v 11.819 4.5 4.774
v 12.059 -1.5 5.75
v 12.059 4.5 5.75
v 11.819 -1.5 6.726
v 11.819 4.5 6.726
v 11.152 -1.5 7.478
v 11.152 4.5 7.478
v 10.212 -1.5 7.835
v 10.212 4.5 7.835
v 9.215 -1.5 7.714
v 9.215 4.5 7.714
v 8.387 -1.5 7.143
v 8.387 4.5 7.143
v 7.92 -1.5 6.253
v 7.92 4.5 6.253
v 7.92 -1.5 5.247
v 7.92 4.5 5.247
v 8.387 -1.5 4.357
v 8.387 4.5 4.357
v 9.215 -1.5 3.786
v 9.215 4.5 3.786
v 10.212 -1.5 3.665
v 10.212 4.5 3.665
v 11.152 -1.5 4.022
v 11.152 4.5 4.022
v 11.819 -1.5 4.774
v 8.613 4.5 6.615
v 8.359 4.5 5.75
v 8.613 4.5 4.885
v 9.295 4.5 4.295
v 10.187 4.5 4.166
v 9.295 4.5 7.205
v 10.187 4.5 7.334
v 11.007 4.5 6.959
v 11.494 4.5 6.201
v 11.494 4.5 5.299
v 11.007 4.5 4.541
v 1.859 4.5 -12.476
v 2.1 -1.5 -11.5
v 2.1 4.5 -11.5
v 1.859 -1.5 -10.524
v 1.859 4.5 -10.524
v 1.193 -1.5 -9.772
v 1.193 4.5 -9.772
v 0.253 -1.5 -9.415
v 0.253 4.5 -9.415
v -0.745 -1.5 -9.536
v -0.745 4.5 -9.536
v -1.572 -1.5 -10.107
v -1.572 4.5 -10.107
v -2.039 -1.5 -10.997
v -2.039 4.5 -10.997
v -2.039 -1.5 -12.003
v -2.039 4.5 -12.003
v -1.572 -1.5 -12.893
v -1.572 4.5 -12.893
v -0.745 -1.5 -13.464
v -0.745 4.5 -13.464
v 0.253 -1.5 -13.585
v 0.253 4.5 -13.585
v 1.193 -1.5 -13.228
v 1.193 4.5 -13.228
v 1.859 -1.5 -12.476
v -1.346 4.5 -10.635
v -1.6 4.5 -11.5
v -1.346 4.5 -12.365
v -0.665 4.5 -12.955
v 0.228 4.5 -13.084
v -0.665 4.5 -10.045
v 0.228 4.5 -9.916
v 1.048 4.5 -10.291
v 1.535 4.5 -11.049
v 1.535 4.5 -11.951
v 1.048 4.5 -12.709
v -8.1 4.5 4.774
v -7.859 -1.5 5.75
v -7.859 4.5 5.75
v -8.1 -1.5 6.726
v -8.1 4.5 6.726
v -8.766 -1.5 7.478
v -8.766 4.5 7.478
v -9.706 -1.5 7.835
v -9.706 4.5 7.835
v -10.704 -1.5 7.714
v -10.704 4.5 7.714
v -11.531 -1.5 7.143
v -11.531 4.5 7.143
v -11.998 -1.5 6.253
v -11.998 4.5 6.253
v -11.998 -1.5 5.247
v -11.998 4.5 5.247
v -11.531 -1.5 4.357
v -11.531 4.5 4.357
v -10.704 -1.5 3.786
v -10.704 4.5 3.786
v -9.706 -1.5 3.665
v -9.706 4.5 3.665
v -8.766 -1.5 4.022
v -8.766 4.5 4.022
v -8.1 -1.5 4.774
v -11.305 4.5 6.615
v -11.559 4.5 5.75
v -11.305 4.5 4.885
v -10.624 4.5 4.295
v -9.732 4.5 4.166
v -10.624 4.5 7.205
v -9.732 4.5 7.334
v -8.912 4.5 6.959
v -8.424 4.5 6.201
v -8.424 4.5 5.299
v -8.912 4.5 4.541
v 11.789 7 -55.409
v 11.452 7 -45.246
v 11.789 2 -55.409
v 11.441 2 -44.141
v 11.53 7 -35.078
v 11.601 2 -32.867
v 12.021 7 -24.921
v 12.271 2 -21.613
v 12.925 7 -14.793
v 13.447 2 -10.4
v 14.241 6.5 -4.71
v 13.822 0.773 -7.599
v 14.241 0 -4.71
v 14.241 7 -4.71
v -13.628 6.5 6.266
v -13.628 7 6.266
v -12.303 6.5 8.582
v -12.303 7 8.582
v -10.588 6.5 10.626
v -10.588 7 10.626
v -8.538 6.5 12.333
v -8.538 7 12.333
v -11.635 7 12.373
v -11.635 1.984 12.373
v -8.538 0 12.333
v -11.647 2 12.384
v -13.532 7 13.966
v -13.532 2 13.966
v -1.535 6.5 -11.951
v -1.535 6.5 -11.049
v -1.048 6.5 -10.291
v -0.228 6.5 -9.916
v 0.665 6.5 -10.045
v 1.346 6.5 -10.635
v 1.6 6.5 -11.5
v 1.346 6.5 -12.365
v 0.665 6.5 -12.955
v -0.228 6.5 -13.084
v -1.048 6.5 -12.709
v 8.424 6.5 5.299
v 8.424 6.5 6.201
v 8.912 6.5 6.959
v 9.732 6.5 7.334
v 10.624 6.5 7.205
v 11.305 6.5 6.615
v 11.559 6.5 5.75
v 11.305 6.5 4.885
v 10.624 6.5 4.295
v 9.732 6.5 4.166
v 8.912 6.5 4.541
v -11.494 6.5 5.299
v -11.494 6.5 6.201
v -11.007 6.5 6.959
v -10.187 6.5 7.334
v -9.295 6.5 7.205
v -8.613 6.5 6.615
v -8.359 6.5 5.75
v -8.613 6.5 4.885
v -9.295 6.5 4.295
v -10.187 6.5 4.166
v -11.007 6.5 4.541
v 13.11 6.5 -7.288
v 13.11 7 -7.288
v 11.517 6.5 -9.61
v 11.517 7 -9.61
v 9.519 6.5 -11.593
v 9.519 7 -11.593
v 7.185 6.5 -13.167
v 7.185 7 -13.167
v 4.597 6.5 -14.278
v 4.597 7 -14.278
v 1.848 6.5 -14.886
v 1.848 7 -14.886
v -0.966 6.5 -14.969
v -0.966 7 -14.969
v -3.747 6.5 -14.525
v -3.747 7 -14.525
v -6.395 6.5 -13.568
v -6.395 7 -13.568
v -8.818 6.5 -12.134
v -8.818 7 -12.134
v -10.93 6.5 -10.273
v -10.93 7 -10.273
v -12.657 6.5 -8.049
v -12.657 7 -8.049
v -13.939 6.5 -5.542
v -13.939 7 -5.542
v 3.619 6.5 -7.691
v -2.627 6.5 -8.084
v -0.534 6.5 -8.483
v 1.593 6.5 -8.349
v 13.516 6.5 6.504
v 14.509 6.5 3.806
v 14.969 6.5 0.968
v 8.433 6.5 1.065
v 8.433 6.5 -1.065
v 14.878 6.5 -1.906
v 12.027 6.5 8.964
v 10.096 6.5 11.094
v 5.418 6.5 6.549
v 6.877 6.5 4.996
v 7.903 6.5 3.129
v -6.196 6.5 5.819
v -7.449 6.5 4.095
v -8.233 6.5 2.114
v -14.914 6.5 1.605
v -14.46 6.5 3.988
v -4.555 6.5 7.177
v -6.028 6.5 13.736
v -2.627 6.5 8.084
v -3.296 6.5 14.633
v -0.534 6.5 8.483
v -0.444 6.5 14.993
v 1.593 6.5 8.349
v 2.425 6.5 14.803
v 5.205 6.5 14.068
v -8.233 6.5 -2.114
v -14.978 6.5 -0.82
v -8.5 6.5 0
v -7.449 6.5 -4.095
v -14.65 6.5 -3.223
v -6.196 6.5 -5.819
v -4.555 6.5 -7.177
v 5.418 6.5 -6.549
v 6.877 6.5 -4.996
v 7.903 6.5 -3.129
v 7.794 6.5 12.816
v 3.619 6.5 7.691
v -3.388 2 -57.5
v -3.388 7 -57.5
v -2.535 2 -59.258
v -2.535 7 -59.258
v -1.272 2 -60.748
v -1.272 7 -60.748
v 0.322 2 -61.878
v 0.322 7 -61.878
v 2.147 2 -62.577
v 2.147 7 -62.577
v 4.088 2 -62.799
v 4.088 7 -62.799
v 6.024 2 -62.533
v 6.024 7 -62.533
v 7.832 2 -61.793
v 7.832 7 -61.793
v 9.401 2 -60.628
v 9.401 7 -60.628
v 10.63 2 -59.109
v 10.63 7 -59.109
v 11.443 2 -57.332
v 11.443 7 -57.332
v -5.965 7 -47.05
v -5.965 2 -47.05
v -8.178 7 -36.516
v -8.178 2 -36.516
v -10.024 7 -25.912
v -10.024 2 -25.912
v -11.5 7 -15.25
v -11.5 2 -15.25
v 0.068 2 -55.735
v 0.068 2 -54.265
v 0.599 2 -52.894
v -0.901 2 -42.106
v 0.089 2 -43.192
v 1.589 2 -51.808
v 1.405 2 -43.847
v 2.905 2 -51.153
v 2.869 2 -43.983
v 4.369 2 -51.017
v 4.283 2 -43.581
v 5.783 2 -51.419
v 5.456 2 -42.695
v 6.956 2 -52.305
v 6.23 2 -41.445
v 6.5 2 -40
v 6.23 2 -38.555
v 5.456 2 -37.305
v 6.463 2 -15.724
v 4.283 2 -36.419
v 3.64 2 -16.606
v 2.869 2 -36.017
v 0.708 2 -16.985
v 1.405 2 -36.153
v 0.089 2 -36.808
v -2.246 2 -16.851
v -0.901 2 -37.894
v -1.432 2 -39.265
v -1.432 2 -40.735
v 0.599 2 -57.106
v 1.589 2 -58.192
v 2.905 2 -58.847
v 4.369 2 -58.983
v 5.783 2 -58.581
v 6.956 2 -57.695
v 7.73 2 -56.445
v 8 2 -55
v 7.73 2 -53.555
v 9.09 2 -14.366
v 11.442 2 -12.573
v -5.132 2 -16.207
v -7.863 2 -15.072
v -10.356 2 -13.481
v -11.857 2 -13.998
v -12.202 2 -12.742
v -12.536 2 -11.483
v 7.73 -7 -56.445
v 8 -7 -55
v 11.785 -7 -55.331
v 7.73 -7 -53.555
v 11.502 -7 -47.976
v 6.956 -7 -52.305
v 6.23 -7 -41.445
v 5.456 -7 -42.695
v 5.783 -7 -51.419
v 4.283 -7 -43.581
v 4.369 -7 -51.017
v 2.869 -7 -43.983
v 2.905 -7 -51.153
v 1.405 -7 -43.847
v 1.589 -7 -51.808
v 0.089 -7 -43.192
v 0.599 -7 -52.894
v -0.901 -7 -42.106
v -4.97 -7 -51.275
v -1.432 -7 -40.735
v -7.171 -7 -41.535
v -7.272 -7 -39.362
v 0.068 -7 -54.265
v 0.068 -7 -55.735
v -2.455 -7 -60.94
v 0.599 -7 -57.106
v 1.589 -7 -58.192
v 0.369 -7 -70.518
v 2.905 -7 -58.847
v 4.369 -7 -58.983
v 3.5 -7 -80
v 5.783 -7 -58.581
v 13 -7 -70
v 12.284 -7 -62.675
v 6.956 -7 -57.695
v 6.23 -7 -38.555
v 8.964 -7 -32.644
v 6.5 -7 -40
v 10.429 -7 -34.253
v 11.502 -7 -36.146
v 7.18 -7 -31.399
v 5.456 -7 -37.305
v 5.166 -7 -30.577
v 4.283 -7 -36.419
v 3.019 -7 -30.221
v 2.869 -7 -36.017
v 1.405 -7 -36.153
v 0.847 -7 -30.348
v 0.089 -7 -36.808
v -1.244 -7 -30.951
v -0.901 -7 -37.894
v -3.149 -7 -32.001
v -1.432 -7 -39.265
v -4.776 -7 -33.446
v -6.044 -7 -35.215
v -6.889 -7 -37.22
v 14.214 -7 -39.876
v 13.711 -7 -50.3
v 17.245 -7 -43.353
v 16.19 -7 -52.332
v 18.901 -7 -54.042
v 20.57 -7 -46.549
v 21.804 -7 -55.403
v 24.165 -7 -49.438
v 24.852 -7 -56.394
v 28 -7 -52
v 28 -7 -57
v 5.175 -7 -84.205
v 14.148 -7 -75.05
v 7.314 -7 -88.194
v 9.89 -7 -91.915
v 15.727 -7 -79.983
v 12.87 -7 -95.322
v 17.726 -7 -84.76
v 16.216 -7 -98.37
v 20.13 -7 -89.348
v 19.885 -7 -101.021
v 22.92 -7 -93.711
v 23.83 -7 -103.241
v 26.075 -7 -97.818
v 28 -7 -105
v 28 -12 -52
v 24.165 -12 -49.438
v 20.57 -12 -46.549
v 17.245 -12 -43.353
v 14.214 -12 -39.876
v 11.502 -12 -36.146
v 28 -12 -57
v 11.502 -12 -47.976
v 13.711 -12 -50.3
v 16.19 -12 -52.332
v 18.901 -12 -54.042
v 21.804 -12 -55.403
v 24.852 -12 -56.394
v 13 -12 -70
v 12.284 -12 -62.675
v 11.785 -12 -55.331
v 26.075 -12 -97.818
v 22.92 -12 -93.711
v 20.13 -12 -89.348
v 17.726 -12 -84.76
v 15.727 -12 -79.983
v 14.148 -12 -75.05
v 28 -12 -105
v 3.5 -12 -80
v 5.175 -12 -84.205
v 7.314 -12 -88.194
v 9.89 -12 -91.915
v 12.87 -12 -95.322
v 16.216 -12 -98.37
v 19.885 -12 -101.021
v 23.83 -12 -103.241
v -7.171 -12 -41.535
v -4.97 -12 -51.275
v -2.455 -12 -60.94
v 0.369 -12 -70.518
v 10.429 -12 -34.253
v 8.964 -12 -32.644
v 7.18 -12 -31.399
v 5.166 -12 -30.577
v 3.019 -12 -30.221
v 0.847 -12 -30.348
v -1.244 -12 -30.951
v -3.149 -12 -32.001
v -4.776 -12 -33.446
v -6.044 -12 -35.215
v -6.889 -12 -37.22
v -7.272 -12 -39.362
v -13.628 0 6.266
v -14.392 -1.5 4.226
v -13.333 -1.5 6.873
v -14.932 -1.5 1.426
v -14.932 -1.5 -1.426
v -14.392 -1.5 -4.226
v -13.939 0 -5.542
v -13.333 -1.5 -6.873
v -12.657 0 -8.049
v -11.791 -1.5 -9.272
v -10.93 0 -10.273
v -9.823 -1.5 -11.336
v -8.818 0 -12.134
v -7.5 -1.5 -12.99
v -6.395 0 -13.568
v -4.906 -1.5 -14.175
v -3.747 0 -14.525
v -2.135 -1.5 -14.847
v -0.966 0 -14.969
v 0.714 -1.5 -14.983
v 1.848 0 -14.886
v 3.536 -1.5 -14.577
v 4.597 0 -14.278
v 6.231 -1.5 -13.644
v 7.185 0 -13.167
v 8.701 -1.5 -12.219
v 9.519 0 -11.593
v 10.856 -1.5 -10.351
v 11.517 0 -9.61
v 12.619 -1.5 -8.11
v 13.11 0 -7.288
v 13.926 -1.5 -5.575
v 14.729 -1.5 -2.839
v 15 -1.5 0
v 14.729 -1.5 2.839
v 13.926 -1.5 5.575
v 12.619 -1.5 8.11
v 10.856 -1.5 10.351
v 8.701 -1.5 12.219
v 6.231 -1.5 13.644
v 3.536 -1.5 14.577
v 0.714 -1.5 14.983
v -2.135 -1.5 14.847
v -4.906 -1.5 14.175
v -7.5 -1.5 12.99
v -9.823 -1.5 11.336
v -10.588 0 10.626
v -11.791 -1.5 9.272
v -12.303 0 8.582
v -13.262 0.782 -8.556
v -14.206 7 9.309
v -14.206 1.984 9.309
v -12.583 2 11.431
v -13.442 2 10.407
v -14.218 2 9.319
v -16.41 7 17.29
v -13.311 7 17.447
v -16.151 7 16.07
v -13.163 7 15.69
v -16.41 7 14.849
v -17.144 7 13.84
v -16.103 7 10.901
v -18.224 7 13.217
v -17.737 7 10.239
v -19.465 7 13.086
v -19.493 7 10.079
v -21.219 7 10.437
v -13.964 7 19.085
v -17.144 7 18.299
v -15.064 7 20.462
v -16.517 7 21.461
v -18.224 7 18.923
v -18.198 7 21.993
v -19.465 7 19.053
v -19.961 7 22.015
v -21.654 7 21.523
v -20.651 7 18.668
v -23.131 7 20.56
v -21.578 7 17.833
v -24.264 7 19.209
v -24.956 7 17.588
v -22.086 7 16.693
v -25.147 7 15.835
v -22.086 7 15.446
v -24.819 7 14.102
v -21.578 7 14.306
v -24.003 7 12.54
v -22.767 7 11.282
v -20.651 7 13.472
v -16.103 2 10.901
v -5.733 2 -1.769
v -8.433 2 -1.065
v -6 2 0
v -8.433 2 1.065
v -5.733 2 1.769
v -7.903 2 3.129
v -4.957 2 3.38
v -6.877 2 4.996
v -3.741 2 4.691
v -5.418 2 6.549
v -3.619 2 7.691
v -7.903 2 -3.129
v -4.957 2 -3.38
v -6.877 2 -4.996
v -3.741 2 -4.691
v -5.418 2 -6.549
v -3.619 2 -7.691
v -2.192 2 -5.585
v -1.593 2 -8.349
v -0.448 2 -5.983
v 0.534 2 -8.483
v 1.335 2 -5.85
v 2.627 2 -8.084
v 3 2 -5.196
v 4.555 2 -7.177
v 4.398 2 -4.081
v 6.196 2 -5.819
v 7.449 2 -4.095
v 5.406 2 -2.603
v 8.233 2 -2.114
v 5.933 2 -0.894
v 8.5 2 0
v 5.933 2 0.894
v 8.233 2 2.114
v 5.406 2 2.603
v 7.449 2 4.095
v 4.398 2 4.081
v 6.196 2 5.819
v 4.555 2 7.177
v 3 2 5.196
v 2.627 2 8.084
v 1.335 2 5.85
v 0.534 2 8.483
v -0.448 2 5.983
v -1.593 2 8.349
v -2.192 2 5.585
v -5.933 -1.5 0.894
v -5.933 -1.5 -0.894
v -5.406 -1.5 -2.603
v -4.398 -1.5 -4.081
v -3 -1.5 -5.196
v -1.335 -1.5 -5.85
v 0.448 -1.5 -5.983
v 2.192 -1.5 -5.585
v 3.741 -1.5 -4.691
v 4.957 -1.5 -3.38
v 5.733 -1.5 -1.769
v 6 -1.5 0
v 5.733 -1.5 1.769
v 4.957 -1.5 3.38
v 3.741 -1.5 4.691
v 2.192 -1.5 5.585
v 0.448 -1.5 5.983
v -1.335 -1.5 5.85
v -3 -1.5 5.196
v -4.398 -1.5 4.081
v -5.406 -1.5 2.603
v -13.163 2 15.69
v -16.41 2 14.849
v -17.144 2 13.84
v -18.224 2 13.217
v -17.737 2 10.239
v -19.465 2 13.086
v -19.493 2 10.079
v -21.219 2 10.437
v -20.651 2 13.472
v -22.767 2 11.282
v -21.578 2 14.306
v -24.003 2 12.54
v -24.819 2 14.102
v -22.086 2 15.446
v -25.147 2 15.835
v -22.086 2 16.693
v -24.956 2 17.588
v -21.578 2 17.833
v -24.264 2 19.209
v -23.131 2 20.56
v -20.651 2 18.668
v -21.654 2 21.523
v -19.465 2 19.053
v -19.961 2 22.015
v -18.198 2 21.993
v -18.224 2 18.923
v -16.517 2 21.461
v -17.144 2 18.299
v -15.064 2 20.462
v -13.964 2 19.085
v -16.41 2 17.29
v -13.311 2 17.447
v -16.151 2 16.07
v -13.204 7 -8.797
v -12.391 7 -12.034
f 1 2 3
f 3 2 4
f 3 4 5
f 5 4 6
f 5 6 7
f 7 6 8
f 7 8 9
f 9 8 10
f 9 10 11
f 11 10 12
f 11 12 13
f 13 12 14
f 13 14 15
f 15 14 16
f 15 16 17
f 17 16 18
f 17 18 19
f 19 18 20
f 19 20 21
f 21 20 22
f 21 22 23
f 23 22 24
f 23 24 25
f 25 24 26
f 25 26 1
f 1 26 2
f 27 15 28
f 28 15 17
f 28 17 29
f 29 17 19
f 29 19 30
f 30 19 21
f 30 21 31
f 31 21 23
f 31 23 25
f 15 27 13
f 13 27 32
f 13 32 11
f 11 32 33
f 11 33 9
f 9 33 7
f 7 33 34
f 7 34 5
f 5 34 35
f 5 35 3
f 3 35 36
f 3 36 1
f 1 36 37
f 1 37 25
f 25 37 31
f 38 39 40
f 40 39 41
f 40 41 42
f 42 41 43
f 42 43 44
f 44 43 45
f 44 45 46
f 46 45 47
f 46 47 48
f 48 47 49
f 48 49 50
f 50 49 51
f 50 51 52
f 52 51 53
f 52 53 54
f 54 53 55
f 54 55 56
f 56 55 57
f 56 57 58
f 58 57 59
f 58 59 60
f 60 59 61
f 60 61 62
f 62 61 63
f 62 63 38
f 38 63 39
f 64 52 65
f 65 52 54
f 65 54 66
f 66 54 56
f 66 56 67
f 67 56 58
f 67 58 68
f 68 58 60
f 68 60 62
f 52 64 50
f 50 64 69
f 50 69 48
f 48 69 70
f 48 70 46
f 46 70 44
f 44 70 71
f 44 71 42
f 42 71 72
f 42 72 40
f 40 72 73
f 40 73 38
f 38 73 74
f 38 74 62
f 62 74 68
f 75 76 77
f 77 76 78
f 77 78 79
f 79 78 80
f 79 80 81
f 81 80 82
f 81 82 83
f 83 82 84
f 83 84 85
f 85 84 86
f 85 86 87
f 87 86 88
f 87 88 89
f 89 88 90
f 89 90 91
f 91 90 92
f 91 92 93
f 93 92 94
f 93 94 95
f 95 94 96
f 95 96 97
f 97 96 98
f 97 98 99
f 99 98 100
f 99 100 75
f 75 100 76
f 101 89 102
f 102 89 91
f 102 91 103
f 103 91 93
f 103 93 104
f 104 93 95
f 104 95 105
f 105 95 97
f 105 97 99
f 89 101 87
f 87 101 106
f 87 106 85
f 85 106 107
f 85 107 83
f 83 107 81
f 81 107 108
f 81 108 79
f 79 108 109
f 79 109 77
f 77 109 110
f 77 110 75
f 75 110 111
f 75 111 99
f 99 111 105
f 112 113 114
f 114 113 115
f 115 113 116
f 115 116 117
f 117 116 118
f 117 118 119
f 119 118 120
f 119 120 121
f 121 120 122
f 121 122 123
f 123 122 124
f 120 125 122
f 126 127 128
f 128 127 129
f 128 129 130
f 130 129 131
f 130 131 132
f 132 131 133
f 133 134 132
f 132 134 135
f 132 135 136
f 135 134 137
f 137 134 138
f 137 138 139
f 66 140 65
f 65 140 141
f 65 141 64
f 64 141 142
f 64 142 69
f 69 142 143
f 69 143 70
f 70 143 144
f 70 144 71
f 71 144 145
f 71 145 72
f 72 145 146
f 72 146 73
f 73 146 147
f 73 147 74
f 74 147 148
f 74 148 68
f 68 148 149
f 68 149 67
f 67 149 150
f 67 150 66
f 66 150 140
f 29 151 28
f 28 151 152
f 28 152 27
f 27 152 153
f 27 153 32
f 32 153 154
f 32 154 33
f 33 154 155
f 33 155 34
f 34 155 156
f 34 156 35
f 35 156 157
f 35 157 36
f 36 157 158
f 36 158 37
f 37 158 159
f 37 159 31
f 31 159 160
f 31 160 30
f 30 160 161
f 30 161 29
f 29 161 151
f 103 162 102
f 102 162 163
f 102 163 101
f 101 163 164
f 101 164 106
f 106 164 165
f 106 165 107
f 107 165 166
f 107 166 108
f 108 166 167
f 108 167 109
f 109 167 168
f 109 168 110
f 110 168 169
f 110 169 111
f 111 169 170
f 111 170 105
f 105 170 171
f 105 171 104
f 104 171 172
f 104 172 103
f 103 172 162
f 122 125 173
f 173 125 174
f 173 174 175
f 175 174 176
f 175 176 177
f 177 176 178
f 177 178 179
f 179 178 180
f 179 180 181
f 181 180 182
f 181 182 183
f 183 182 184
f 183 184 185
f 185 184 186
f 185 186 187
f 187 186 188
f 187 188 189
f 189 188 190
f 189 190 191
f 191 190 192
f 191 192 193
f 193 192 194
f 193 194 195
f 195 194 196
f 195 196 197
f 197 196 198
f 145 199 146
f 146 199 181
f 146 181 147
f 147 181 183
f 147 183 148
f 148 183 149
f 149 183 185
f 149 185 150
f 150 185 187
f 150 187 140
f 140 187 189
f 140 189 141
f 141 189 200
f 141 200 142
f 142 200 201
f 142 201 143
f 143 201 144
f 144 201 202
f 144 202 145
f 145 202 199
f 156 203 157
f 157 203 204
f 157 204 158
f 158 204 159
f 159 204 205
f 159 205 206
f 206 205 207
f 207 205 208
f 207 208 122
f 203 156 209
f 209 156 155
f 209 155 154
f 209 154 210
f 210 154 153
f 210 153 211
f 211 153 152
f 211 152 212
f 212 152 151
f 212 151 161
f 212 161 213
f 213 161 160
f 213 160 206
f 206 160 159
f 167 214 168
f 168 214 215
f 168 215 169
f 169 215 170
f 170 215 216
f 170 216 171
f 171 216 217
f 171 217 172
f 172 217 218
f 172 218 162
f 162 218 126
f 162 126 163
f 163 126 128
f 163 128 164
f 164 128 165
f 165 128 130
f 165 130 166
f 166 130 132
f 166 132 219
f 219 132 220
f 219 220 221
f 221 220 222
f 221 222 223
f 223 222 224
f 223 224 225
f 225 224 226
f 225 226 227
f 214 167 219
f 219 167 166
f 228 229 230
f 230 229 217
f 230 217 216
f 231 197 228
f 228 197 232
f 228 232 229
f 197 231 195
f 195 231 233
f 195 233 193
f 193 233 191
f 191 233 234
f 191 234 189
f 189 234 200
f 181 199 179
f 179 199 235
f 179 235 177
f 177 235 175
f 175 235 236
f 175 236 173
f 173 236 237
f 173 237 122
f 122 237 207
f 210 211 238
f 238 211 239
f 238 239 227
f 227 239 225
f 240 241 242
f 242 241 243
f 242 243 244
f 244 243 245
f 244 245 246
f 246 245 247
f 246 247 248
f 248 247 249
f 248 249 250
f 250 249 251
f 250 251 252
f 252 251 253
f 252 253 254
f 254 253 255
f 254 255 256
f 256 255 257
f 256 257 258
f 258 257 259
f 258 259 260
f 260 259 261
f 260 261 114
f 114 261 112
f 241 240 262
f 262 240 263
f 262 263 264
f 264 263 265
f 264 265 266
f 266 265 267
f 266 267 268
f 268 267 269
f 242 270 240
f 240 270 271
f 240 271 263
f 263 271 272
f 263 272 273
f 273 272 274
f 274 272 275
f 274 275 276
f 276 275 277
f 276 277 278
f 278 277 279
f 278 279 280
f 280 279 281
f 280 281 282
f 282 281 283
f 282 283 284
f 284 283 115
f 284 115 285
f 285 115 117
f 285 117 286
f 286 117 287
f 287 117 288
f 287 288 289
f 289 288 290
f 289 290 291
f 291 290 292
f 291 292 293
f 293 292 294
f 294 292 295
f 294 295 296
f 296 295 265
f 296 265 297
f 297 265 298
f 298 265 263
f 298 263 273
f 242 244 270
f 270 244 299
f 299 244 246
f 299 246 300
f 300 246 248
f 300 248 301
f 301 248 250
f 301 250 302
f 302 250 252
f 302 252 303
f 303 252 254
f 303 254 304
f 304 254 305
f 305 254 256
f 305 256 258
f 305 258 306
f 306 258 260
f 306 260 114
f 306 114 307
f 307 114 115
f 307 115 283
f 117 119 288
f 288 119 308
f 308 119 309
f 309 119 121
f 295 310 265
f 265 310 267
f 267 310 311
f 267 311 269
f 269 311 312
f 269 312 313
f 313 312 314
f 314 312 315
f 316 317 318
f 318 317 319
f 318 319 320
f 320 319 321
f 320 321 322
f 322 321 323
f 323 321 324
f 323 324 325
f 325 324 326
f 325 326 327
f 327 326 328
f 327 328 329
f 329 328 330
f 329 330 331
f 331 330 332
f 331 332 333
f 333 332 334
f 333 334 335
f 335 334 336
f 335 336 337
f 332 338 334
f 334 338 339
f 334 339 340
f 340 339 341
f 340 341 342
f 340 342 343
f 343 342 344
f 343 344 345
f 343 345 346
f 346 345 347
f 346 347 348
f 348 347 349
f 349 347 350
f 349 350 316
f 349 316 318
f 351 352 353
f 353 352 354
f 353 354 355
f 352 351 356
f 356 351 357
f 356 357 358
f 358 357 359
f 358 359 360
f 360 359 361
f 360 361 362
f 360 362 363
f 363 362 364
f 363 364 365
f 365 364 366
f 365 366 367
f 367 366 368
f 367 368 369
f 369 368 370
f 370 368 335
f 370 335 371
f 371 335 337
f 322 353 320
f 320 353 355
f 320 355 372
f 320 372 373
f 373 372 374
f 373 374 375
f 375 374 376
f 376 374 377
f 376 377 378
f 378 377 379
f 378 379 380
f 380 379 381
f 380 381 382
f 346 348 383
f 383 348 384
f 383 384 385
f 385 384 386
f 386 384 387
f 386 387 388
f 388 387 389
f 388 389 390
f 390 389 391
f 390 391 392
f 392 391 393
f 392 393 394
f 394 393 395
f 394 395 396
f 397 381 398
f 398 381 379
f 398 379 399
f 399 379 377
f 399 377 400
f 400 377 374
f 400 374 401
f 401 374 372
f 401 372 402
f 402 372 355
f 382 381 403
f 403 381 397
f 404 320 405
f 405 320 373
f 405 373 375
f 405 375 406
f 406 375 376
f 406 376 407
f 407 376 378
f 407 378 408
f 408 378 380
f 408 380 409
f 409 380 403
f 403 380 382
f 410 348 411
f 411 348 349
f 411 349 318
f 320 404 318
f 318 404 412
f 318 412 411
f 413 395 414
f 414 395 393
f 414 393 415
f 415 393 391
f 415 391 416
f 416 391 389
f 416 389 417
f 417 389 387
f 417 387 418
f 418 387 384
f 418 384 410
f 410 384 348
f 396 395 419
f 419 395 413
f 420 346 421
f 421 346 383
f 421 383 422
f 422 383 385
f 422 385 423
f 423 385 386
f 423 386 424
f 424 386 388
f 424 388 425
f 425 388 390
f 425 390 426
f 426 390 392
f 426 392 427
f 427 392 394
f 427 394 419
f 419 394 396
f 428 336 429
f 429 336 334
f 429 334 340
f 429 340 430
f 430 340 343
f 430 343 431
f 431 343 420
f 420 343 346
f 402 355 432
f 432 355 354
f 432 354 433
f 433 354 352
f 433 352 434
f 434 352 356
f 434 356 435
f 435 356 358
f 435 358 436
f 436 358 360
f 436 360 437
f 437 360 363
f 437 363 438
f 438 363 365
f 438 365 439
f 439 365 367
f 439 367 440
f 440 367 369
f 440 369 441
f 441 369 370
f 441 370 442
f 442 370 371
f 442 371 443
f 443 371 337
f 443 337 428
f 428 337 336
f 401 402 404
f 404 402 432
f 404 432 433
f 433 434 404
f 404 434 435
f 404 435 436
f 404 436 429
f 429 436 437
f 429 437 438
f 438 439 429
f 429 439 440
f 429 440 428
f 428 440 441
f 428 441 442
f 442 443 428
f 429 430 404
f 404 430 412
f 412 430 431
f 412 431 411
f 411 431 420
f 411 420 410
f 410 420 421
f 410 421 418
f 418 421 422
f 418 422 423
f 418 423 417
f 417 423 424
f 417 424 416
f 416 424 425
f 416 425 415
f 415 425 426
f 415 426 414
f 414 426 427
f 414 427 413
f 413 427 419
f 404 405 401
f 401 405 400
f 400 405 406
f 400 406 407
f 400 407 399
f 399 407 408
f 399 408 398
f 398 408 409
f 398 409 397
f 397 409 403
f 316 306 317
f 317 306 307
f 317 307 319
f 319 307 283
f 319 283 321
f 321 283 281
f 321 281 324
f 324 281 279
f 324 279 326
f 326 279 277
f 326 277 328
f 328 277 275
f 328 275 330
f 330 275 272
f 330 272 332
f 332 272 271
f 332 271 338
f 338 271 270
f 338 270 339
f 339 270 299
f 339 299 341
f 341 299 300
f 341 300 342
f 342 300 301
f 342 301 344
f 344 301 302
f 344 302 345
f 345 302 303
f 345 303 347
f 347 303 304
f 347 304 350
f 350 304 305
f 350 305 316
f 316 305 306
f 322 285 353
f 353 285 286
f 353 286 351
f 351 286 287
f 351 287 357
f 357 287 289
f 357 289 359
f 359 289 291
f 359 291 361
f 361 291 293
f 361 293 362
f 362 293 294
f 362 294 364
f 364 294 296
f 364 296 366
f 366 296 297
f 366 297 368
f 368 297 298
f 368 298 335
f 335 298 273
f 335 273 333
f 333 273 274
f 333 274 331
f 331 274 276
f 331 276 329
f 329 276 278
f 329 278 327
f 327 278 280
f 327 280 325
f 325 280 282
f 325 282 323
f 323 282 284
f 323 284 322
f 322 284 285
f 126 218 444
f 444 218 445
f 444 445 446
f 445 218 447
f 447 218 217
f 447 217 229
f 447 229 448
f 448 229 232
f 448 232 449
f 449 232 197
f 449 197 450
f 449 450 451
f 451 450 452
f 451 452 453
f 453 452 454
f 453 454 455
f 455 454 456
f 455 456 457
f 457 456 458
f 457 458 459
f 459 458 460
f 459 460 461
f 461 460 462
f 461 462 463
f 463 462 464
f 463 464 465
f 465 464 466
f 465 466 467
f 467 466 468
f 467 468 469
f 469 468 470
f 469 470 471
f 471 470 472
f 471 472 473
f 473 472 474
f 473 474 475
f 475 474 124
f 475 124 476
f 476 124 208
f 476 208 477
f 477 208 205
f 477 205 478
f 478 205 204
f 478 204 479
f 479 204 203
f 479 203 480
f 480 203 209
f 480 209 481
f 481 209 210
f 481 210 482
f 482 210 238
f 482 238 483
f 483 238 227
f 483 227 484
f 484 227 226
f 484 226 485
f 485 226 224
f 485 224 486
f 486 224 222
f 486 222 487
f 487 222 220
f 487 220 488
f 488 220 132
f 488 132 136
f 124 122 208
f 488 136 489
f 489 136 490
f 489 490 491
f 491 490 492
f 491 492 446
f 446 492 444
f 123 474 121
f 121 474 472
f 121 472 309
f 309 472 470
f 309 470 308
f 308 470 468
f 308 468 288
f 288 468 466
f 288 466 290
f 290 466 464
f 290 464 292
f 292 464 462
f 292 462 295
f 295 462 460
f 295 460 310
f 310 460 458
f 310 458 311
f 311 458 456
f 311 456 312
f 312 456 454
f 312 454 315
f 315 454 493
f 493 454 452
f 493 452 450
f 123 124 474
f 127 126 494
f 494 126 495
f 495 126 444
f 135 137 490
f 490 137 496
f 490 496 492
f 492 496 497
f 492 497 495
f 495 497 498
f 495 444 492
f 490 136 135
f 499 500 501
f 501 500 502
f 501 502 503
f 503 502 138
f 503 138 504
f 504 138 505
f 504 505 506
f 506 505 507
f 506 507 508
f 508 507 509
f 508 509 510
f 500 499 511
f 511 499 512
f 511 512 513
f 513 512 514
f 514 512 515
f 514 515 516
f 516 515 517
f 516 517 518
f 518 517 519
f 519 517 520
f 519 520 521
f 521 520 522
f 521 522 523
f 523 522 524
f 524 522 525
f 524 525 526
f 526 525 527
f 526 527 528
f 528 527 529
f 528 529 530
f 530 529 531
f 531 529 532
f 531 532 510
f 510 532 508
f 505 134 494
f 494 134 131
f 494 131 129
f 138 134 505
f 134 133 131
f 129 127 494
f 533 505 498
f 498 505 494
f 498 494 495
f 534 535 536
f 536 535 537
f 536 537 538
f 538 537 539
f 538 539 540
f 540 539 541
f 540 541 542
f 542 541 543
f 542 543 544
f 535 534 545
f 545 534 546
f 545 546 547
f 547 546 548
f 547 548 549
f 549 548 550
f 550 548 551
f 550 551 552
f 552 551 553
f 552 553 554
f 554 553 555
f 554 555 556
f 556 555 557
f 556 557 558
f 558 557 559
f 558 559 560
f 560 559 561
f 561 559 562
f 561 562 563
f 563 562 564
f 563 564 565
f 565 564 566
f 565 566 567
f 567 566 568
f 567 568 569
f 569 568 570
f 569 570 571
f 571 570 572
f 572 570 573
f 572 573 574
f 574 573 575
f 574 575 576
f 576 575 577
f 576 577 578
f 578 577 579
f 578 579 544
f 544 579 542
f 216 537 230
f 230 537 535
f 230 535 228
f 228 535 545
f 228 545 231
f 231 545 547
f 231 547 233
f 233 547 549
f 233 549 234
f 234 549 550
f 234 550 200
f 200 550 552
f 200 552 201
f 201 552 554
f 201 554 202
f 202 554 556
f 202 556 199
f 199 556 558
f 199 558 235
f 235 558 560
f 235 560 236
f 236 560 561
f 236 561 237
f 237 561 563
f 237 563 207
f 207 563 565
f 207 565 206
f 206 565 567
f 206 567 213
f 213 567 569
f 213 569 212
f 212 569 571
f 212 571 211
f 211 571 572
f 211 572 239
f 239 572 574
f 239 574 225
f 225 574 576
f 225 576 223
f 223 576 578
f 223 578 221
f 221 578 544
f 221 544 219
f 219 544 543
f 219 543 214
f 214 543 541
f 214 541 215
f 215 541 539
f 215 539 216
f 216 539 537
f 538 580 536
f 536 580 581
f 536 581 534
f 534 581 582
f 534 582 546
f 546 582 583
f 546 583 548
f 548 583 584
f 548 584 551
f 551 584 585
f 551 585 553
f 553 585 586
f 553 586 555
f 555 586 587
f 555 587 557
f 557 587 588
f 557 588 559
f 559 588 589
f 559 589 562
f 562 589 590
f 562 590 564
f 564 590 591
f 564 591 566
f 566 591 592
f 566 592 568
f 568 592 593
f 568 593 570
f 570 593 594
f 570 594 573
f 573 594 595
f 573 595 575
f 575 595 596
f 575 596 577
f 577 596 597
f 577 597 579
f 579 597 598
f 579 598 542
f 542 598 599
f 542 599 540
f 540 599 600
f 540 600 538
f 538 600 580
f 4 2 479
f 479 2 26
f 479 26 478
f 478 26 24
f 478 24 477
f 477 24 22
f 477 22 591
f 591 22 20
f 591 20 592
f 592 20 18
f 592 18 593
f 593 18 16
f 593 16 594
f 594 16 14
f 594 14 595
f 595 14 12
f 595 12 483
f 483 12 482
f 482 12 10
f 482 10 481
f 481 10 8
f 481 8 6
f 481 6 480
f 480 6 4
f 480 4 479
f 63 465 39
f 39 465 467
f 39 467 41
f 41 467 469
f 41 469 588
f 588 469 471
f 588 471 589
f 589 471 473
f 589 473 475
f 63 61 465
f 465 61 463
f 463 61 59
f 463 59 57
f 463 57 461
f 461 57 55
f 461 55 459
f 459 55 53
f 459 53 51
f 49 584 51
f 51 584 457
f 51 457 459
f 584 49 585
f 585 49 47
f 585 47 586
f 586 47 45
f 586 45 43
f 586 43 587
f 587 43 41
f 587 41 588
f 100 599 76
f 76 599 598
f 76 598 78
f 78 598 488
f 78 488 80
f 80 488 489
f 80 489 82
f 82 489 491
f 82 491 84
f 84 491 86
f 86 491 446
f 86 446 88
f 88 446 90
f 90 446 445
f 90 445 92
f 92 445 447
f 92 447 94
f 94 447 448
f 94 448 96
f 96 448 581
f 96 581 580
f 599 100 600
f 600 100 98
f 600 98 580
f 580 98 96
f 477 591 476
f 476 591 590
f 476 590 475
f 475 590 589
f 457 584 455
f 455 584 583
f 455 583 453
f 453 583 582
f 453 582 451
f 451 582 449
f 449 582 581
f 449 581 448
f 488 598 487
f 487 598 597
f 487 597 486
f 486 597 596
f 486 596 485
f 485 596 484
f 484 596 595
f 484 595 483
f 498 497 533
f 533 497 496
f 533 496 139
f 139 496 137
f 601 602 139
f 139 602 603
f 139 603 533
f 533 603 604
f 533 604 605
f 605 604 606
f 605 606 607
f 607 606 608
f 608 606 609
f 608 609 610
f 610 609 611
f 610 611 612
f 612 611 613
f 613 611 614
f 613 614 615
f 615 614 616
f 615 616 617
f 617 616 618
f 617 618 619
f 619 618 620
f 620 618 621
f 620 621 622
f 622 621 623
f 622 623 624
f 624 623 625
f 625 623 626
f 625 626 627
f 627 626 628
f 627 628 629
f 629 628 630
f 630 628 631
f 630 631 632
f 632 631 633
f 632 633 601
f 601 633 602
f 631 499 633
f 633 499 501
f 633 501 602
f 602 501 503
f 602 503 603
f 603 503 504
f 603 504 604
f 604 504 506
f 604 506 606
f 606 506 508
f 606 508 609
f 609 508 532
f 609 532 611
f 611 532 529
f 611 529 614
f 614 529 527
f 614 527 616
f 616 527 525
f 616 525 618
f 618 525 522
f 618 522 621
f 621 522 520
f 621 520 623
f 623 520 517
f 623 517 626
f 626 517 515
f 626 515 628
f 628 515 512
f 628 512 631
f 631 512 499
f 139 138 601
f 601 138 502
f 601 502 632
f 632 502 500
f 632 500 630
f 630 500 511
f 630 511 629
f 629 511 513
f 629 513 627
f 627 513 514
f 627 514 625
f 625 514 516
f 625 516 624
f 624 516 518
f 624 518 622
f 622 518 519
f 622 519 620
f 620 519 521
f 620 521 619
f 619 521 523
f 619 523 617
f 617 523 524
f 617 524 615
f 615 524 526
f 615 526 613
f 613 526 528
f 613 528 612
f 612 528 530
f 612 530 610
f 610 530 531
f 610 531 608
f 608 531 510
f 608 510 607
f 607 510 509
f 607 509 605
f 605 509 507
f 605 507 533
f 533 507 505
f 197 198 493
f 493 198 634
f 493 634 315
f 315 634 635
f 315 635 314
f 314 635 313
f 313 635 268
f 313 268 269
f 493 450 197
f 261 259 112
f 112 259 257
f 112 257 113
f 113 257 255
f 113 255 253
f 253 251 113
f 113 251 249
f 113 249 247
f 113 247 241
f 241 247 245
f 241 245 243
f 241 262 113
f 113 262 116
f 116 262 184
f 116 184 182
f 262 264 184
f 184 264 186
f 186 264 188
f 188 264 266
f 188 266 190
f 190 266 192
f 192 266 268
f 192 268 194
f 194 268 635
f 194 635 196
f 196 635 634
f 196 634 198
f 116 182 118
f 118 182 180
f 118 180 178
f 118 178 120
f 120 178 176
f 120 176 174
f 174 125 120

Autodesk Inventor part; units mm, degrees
sketch "Skizze10" plane through (0, 0, 0) normal (1, 0, 0) x (0, 1, 0)
  line L0 (-1.4, 0) -> (8.4, 0) projected
  line L1 (0, -13.2) -> (0, 2.2) projected
  line L2 (2, -2.5) -> (7, -2.5)
  line L3 (7, -2.5) -> (7, -8)
  line L4 (7, -8) -> (2, -8)
  line L5 (2, -8) -> (2, -2.5)
  point P0 (0, 0)
  point P1 (0, -11)
  dimension "d135" = 8
  dimension "d137" = 5
  dimension "d138" = 2
  dimension "d145" = 2.5
revolve "Umdrehung2" add sketch "Skizze10" angle 360 about axis through (0, -10, 0) along (0, 1, 0)
ref_plane "Arbeitsebene2" through (0, 6, 0) normal (0, 1, 0) x (1, 0, 0)
ref_plane "Arbeitsebene3" through (0, 4.5, 0) normal (0, 1, 0) x (1, 0, 0)
sketch "Skizze12" plane through (0, 4.5, 0) normal (0, 1, 0) x (1, 0, 0)
  arc A0 (3.5, 80) -> (-11.5, 15.25) centre (296.2619, -21.9337) ccw projected
  arc A1 (28, 100) -> (13, 70) centre (72.0267, 59.2367) ccw projected
  line L0 (28, 100) -> (28, 105) projected
  arc A2 (28, 105) -> (3.5, 80) centre (41.4387, 67.3251) ccw projected
  circle A3 centre (0, 0) radius 15
  arc A4 (13, 70) -> (15, 0) centre (261.1443, 42.0613) ccw
  arc A5 (-11.5, 15.25) -> (-15, 0) centre (120.624, -23.1002) ccw
  circle A6 centre (0, 0) radius 8 projected
  line L1 (0, 0) -> (-19.1511, -16.0697)
  line L2 (-78.9324, 0) -> (358.7942, 0) projected
  line L3 (0, 133.8507) -> (0, -48.3491) projected
  circle A7 centre (-19.1511, -16.0697) radius 6
  circle A8 centre (-19.1511, -16.0697) radius 3
  line L4 (1.2856, -1.5321) -> (-14.0353, -14.3878)
  line L5 (-1.2856, 1.5321) -> (-16.6065, -11.3237)
  point P0 (-16.4, 0)
  point P1 (-12.6736, -8.0236)
  point P2 (-16.1033, -10.9014)
  point P3 (-13.5321, -13.9656)
  point P4 (-10.1025, -11.0878)
  dimension "d147" = 30
  dimension "d148" = 50
  dimension "d149" = 25
  dimension "d150" = 12
  dimension "d152" = 3
  dimension "d153" = 2
  dimension "d154" = 2
sketch "Skizze13" plane through (0, 4.5, 0) normal (0, 1, 0) x (1, 0, 0)
  point P0 (0, 0)
extrude "Extrusion8" add sketch "Skizze12" along normal mid plane 5 contours A2 L0 A1 A4 A3 L3 A0 | L3 A3 A5 A0 | L3 A6 L2 A5 A3 | A3 A4 L2 A6 L3 | L3 L2 A6 | A6 L2 L3 | L2 A6 L5 A3 | A3 L3 A6 L2 | A6 L3 L2 | L2 L5 A6 | L3 L4 A6 L1 | L1 A6 L5 L2 | L5 A6 L1 A3 | A3 L1 A7 L5 | A3 L4 A6 L3 | A6 L4 L3 | A6 L4 A3 L1 | A3 L4 A7 L1 | A7
sketch "Skizze14" plane through (0, 4.5, 0) normal (0, 1, 0) x (1, 0, 0)
  circle A0 centre (0, 0) radius 2.5
  dimension "d157" = 5
extrude "Extrusion9" cut sketch "Skizze14" along normal mid plane 20
sketch "Skizze15" plane through (0, 4.5, 0) normal (0, 1, 0) x (1, 0, 0)
  arc A0 (-11.5, 15.25) -> (-15, 0) centre (120.624, -23.1002) ccw projected
  circle A1 centre (0, 0) radius 15
extrude "Extrusion10" add sketch "Skizze15" along normal mid plane 12
sketch "Skizze16" plane through (0, 4.5, 0) normal (0, 1, 0) x (1, 0, 0)
  circle A0 centre (0, 0) radius 6
  dimension "d162" = 12
extrude "Extrusion11" cut sketch "Skizze16" along normal mid plane 12
sketch "Skizze17" plane through (0, 4.5, 0) normal (0, 1, 0) x (1, 0, 0)
  circle A0 centre (0, 0) radius 8.5
  dimension "d165" = 17
extrude "Extrusion12" cut sketch "Skizze17" along normal mid plane 5
chamfer "Fasen7" distance 2 angle 45 8 edges at (-11.4907, 7, 9.6418) (-10.1025, 5.75, 11.0878) (-10.1025, 3.25, 11.0878) (-11.4907, 2, 9.6418) (0.4428, 2, -14.9935) (0.4428, 7, -14.9935) (-12.6736, 5.75, 8.0236) (-12.6736, 3.25, 8.0236)
sketch "Skizze18" plane through (28, 2, -105) normal (0, -1, 0) x (1, 0, 0)
  point P0 (-28, 105)
ref_plane "Arbeitsebene4" through (28, -7, -105) normal (0, -1, 0) x (1, 0, 0)
sketch "Skizze20" plane through (28, 2, -105) normal (0, -1, 0) x (1, 0, 0)
  circle A0 centre (-24, 50) radius 4
  circle A1 centre (-25.5, 65) radius 4
  point P0 (-28, 105)
  dimension "d188" = 8
  dimension "d189" = 8
  dimension "d192" = 1.5
  dimension "d193" = 15
extrude "Extrusion14" add sketch "Skizze20" along normal blind 9
sketch "Skizze19" plane through (28, -7, -105) normal (0, -1, 0) x (1, 0, 0)
  arc A0 (-24.5, 25) -> (0, 0) centre (13.4387, 37.6749) ccw projected
  arc A1 (-15, 35) -> (0, 5) centre (44.0267, 45.7633) ccw projected
  line L0 (0, 0) -> (0, 5) projected
  line L1 (-15, 35) -> (-24.5, 25)
  arc A2 (-39.5, 89.75) -> (-24.5, 25) centre (268.2619, 126.9337) ccw projected
  arc A3 (-14.5526, 94.5996) -> (-15, 35) centre (233.1443, 62.9387) ccw projected
  line L2 (-27, 80) -> (3, 80) construction
  line L3 (-27, 80) -> (-7, 80) construction
  line L4 (-27, 82.5) -> (-5.7868, 82.5) construction
  circle A4 centre (-27, 80) radius 4 projected
  circle A5 centre (-27, 80) radius 4 projected
  circle A6 centre (-27, 60) radius 2.5 projected
  circle A7 centre (-27, 60) radius 2.5 projected
  circle A8 centre (-25.5, 65) radius 4 projected
  circle A9 centre (-25.5, 65) radius 9.7924
  arc A10 (-24.5, 73) -> (-16.5398, 59.1931) centre (13.4387, 85.6749) ccw
  line L5 (0, 48) -> (0, 53)
  line L6 (-28, -28.8006) -> (-28, 153.0481) projected
  line L7 (-117.4337, 105) -> (332.5445, 105) projected
  line L8 (0, 0) -> (0, 105)
  line L9 (0, 105) -> (0, 48)
  line L10 (0, 48) -> (-45.6316, 48)
  arc A11 (-16.4978, 68.8538) -> (0, 53) centre (27.0703, 97.6809) ccw
  arc A12 (-16.4978, 57.0237) -> (0, 48) centre (3.3017, 73.6295) ccw
  line L11 (0, 0) -> (-3.8553, 14.388)
  point P0 (-28, 105)
  point P1 (-16.5679, 62.8977)
  point P2 (-37.8031, 77.6969)
  point P3 (-16.4978, 68.8538)
  point P4 (-35.1713, 63.4649)
  point P5 (-15.4874, 86.1429)
  point P6 (-16.5398, 59.1931)
  point P7 (-1.9245, 7.1825)
  dimension "d213" = 57
  dimension "d214" = 15
extrude "Extrusion13" add sketch "Skizze19" along normal blind 5 contours L1 A1 L11 A0 | A2 L6 L10 A3 L1 | A2 L10 L6 | L10 L6 A9 A10 A3 | A2 A9 L6 L10 | A12 A3 A9 A11 L5 | A2 A9 L6 A8 A6 | L6 A6 A8 A9 A3 | A10 A9 A3 | L6 A8 A6 | A6 A8 L6 | A9 A3 | A8 L6 A6 | A6 L6 A8 | L6 A6 A8 | A8 A6 L6
sketch "Skizze21" plane through (28, 7, -100) normal (0, 1, 0) x (1, 0, 0)
  circle A0 centre (-24, -45) radius 4 projected
  circle A1 centre (-25.5, -60) radius 4 projected
  circle A2 centre (-27, -75) radius 4 projected
  circle A3 centre (-24, -45) radius 7.7999
  arc A4 (-14.5526, -89.5996) -> (-40.5357, -88.5171) centre (-28, -100) ccw projected
  arc A5 (-15, -30) -> (-14.5526, -89.5996) centre (233.1443, -57.9387) ccw projected
  arc A6 (0, 0) -> (-15, -30) centre (44.0267, -40.7633) ccw projected
  line L0 (0, 0) -> (0, 5) projected
  arc A7 (0, 5) -> (-24.5, -20) centre (13.4387, -32.6749) ccw projected
  arc A8 (-24.5, -20) -> (-39.5, -84.75) centre (268.2619, -121.9337) ccw projected
  arc A9 (-39.5, -84.75) -> (-40.5357, -88.5171) centre (92.624, -123.1002) ccw projected
  point P0 (-31.3884, -42.5)
  point P1 (-16.2109, -44.5906)
extrude "Extrusion15" cut sketch "Skizze21" against normal blind 5 contours A3 A8 A7 L0 A6 A5
sketch "Skizze22" plane through (0, 10.5, 0) normal (0, 1, 0) x (1, 0, 0)
  circle A0 centre (0, 0) radius 15
extrude "Extrusion16" cut sketch "Skizze22" against normal blind 4
sketch "Skizze23" plane through (0, 6.5, 0) normal (0, 1, 0) x (1, 0, 0)
  circle A0 centre (0, 0) radius 11.5
  circle A1 centre (0, 0) radius 8.5 projected
  arc A2 (-8.5376, -12.3333) -> (14.2414, 4.7098) centre (0, 0) ccw projected
  arc A3 (14.2414, 4.7098) -> (-13.9387, 5.5419) centre (0, 0) ccw projected
  arc A4 (-13.9387, 5.5419) -> (-13.6284, -6.2663) centre (0, 0) ccw projected
  arc A5 (-13.6284, -6.2663) -> (-8.5376, -12.3333) centre (0, 0) ccw projected
  line L0 (0, 0) -> (0, 30.1183)
  line L1 (0, 0) -> (-26.0832, -15.0591)
  line L2 (0, 0) -> (26.0832, -15.0591)
  circle A6 centre (-9.9593, -5.75) radius 1.6
  circle A7 centre (9.9593, -5.75) radius 1.6
  circle A8 centre (0, 11.5) radius 1.6
  dimension "d198" = 3
  dimension "d201" = 360
  dimension "d203" = 3.2
  dimension "d204" = 3.2
  dimension "d205" = 3.2
  dimension "d210" = 23
extrude "Extrusion17" cut sketch "Skizze23" against normal blind 8 contours A8 L0 A0 | A0 L0 A8 | A7 L2 A0 | A0 L2 A7 | L0 A8 A0 | A0 A8 L0 | L2 A7 A0 | A0 A7 L2 | A6 L1 A0 | A0 L1 A6 | A6 L1 A0 | A0 L1 A6
sketch "Skizze24" plane through (0, 7, 0) normal (0, 1, 0) x (0.9991332, 0, 0.0416272)
  arc A0 (-5.779, 57.3091) -> (-12.1248, 14.7581) centre (296.9181, -9.5822) ccw projected
  arc A1 (-12.1248, 14.7581) -> (-13.0028, 10.9511) centre (121.481, -18.0589) ccw projected
  arc A2 (13.0028, 10.9511) -> (-13.0028, 10.9511) centre (0, 0) ccw projected
  arc A3 (9.4724, 55.8521) -> (13.0028, 10.9511) centre (259.167, 52.8955) ccw projected
  line L0 (41.2501, 29.7308) -> (-28.4254, 29.7308)
  line L1 (-28.4254, 29.7308) -> (-28.4254, -36.8887)
  line L2 (-28.4254, -36.8887) -> (41.2501, -36.8887)
  line L3 (41.2501, -36.8887) -> (41.2501, 29.7308)
  point P0 (-10.579, 29.7308)
  point P1 (10.5316, 29.7308)
extrude "Extrusion18" cut sketch "Skizze24" along normal blind 5 contours A0 A1 A2 A3 L0 L3 L2 L1
sketch "Skizze26" plane through (0, -1.5, 0) normal (0, -1, 0) x (1, 0, 0)
  circle A0 centre (0, -11.5) radius 1.6 projected
  circle A1 centre (9.9593, 5.75) radius 1.6 projected
  circle A2 centre (-9.9593, 5.75) radius 1.6 projected
  circle A3 centre (-9.9593, 5.75) radius 2.1
  circle A4 centre (9.9593, 5.75) radius 2.1
  circle A5 centre (0, -11.5) radius 2.1
  dimension "d215" = 4.2
  dimension "d216" = 4.2
  dimension "d217" = 4.2
extrude "Extrusion19" cut sketch "Skizze26" against normal blind 6 contours A0 | A1 | A2 | A3 | A4 | A5
properties part number "01-03-01 Zange links nue" material "Phenolharz"
